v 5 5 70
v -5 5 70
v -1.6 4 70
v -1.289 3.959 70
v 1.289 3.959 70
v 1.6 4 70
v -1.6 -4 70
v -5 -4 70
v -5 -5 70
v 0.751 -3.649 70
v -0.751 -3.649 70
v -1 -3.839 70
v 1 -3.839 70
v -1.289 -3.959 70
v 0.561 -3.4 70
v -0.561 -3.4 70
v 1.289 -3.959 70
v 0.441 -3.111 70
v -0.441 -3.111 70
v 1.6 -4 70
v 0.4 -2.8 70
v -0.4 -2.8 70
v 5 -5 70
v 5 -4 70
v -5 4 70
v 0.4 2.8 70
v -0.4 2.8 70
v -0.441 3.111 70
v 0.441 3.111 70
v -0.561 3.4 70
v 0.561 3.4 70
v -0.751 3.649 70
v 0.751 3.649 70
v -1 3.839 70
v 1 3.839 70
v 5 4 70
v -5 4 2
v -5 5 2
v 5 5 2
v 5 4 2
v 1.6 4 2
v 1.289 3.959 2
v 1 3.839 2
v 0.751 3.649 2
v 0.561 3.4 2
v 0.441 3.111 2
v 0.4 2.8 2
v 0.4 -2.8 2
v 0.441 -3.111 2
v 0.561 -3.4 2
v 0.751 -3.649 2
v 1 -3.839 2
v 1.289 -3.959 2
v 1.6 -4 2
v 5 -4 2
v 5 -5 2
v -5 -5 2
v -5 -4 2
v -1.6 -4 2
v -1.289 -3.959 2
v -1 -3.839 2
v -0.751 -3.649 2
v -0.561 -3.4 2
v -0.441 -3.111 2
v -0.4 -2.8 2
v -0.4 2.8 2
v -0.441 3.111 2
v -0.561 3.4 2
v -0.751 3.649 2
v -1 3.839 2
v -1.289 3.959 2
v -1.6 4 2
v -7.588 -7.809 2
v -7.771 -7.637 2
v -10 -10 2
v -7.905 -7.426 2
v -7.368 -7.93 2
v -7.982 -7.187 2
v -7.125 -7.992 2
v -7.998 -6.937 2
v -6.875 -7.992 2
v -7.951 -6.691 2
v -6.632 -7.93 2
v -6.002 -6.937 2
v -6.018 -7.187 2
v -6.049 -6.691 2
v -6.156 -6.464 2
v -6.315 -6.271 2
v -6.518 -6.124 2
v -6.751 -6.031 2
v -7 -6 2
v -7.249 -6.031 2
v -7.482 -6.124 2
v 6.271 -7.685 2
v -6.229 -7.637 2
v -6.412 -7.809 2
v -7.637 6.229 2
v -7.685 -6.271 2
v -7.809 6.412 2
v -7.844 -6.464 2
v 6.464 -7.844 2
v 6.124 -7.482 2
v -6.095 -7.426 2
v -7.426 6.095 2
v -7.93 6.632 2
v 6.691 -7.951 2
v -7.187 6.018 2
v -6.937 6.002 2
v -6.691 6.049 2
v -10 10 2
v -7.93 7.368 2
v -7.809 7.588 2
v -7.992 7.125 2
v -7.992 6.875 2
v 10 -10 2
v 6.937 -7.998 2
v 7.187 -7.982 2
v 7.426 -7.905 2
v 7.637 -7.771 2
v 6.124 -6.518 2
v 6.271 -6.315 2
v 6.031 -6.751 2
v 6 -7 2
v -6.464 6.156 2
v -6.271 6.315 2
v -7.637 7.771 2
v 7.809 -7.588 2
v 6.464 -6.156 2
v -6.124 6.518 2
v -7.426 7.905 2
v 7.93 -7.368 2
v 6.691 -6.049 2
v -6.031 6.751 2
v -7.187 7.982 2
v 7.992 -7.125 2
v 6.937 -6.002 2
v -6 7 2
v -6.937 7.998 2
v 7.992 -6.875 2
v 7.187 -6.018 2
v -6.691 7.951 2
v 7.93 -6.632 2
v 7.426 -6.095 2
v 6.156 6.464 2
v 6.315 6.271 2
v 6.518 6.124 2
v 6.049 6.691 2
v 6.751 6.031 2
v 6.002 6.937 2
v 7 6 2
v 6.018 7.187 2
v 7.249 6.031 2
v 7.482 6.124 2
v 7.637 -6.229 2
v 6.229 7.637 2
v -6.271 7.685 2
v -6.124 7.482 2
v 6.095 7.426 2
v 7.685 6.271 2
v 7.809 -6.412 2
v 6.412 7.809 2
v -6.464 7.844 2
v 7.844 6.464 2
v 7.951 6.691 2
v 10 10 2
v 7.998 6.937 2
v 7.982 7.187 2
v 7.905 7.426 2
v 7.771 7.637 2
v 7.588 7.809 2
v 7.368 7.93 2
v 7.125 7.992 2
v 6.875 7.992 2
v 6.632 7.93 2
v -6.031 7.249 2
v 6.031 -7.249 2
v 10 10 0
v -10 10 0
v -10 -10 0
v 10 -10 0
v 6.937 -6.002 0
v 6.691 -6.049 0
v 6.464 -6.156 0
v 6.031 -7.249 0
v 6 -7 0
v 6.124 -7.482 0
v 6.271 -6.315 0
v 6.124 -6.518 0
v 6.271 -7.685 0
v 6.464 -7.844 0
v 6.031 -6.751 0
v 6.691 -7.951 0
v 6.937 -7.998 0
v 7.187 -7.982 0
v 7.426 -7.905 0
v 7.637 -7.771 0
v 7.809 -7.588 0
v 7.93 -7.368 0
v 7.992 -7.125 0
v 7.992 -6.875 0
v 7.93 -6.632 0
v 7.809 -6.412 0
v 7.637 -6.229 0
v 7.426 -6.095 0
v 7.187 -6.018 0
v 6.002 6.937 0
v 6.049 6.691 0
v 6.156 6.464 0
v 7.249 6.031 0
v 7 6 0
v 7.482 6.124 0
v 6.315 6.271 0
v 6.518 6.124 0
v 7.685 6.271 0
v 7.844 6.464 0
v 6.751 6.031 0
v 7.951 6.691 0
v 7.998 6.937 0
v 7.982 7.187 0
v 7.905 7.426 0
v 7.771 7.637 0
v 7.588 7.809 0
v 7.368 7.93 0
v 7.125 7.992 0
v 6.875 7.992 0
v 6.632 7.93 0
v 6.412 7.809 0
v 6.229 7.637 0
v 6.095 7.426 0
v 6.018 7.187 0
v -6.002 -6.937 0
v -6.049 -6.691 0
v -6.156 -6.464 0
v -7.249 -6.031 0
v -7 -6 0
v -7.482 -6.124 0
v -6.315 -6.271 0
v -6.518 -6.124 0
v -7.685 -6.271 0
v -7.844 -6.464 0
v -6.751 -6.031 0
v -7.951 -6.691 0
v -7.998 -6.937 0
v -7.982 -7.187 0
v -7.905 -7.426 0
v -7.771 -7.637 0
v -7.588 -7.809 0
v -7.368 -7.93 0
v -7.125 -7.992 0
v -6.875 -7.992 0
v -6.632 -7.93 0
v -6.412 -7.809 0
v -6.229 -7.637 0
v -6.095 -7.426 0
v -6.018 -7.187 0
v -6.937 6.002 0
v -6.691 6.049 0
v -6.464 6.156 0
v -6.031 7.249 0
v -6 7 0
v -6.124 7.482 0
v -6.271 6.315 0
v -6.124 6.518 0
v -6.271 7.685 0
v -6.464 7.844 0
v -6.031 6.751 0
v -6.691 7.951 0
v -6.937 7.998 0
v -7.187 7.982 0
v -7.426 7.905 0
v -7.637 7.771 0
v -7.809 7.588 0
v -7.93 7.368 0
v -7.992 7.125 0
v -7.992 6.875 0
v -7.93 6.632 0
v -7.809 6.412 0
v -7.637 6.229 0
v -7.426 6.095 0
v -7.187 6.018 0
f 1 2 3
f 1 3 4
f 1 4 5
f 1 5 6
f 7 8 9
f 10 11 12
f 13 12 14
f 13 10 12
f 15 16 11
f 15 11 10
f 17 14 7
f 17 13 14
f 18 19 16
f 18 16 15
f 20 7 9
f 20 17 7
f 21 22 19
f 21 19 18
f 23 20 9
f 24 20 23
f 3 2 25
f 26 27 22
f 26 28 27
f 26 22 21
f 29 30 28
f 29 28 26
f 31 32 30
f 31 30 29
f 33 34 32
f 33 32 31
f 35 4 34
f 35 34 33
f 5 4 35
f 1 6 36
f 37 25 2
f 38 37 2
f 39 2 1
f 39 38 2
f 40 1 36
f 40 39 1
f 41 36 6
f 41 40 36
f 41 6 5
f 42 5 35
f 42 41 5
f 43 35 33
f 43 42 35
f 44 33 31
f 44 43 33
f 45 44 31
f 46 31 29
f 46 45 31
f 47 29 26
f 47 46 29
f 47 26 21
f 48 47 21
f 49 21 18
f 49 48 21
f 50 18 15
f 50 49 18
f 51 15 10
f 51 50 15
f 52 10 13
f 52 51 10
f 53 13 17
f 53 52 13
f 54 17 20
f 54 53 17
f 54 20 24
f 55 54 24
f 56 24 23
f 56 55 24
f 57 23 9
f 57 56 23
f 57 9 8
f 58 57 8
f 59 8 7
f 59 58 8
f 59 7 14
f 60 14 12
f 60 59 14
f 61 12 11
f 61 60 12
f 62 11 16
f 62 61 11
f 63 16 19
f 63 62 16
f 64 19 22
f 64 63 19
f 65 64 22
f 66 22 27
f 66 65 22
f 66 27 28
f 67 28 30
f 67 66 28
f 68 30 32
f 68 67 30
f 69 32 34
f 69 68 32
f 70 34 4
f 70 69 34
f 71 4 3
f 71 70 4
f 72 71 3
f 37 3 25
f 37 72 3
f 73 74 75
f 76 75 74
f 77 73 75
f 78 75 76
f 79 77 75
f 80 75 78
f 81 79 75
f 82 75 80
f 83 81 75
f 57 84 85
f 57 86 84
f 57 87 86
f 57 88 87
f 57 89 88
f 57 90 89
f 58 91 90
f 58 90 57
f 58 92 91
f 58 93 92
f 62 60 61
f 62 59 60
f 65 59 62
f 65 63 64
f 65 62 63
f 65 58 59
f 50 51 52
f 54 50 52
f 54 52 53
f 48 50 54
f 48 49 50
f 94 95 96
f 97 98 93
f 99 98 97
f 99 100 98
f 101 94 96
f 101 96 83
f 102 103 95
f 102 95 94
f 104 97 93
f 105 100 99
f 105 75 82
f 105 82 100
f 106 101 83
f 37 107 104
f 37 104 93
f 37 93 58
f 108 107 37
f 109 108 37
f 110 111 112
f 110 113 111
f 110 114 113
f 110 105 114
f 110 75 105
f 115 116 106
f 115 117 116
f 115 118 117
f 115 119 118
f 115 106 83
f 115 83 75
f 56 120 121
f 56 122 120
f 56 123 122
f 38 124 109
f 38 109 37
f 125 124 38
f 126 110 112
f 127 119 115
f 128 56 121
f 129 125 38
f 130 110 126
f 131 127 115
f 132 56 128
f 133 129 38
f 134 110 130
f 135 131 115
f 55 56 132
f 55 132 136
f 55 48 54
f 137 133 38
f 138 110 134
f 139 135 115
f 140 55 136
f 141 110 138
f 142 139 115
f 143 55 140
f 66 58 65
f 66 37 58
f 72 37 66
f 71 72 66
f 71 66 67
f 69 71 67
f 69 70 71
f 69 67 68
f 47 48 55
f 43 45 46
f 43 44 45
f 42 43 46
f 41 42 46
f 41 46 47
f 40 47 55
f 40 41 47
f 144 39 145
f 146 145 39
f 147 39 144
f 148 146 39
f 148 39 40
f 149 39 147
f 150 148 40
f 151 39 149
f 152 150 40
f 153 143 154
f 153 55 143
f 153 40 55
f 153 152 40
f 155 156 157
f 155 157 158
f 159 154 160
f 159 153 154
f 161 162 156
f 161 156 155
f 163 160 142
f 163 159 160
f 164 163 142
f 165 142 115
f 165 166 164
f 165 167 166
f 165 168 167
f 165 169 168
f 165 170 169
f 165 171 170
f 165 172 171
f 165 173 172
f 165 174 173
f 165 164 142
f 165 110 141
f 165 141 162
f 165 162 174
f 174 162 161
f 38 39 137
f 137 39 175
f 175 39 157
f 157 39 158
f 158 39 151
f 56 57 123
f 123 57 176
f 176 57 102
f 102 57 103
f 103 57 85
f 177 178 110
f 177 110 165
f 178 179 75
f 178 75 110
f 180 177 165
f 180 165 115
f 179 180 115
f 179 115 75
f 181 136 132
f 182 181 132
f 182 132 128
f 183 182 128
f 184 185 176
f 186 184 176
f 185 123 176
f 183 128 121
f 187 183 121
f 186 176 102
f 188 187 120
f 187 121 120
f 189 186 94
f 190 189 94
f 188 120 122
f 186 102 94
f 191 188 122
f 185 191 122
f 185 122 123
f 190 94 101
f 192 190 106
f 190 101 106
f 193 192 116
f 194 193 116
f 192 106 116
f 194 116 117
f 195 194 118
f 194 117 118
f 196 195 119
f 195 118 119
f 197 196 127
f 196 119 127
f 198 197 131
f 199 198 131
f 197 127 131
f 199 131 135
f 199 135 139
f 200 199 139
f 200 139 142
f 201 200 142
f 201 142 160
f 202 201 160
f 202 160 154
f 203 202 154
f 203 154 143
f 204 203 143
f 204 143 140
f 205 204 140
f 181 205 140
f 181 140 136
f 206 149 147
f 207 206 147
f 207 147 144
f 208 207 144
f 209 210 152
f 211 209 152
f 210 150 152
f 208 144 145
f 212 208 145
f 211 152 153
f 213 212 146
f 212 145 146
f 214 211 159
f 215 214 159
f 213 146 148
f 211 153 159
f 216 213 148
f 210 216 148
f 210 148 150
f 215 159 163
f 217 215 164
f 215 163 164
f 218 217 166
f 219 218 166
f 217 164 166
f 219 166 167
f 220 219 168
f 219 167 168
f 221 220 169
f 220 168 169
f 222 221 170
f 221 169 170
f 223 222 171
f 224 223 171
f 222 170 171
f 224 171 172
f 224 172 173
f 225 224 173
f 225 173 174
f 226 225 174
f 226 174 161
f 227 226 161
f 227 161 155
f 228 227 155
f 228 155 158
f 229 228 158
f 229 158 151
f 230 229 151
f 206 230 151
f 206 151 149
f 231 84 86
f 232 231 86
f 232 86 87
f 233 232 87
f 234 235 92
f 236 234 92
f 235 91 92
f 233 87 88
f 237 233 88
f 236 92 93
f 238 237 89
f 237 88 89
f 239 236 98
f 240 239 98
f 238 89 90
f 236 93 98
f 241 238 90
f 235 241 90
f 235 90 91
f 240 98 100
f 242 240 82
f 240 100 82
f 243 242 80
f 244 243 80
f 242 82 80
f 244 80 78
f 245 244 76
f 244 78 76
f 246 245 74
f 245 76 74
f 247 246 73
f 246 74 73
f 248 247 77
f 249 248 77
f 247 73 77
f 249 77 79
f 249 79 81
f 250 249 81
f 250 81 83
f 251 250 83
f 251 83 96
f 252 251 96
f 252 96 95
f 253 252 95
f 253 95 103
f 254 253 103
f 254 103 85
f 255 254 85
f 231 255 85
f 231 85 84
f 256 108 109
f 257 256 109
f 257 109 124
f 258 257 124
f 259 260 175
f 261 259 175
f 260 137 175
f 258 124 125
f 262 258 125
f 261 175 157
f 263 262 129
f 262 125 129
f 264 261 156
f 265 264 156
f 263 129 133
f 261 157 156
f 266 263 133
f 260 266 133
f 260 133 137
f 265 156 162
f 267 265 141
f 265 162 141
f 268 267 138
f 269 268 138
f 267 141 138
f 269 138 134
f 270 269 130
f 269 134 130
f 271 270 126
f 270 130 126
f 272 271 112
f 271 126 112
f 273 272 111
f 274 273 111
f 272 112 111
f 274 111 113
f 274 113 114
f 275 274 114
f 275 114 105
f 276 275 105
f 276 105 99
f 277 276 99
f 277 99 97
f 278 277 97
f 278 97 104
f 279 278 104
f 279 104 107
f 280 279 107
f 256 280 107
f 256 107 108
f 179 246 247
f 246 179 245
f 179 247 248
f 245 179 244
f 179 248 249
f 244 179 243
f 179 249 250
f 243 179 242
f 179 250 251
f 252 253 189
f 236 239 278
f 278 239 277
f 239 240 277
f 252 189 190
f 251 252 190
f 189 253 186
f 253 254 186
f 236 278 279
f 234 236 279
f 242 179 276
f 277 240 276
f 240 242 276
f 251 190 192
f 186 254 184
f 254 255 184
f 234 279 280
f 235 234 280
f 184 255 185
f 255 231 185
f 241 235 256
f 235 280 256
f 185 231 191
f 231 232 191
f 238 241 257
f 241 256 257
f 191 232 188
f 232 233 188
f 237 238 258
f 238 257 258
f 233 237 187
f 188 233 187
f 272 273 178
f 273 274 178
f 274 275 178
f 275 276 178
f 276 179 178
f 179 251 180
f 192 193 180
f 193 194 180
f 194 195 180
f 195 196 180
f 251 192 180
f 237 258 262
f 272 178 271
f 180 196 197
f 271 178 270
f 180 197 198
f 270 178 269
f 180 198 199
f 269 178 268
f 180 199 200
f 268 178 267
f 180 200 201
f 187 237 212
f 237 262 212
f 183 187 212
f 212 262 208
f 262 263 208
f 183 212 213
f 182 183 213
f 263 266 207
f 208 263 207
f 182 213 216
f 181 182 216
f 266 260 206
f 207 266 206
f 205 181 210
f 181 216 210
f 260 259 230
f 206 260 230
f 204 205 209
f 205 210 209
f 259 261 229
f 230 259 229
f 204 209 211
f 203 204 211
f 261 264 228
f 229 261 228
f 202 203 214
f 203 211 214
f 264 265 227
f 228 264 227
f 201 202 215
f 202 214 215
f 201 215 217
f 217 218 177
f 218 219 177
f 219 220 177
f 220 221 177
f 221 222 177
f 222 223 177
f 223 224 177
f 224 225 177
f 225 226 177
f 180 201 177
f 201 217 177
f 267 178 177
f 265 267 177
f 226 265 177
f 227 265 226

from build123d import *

# Parameters (mm, degrees)
PAD_DEPTH          = 70
SKETCH002_W        = 20
SKETCH002_H        = 20
PAD001_DEPTH       = 2
SKETCH003_R        = 1
POCKET_DEPTH       = 5
POLARPATTERN_COUNT = 4


with BuildPart() as pad:
    # Sketch001 → Pad (new body)
    with BuildSketch(Plane.XY):
        with BuildLine():
            Line((-5, 4), (-5, 5))
            Line((-5, 5), (5, 5))
            Line((5, 5), (5, 4))
            Line((5, 4), (1.6, 4))
            ThreePointArc((1.6, 4), (0.751472, 3.648528), (0.4, 2.8))
            Line((0.4, 2.8), (0.4, -2.8))
            ThreePointArc((0.4, -2.8), (0.751472, -3.648528), (1.6, -4))
            Line((1.6, -4), (5, -4))
            Line((5, -4), (5, -5))
            Line((5, -5), (-5, -5))
            Line((-5, -5), (-5, -4))
            Line((-5, -4), (-1.6, -4))
            ThreePointArc((-1.6, -4), (-0.751472, -3.648528), (-0.4, -2.8))
            Line((-0.4, -2.8), (-0.4, 2.8))
            ThreePointArc((-0.4, 2.8), (-0.751472, 3.648528), (-1.6, 4))
            Line((-1.6, 4), (-5, 4))
        make_face()
    extrude(amount=PAD_DEPTH)


with BuildPart() as fusion:
    # Sketch002 → Pad001 (new body)
    with BuildSketch(Plane.XY):
        Rectangle(SKETCH002_W, SKETCH002_H)
    extrude(amount=PAD001_DEPTH)

    # Sketch003 → Pocket (cut)
    with BuildSketch(Plane.XY.offset(2)):
        with Locations((-7, 7)):
            Circle(SKETCH003_R)
    pocket = extrude(amount=-POCKET_DEPTH, mode=Mode.SUBTRACT)

    # PolarPattern: Pocket ×4 about axis
    polarpattern_axis = Axis((0, 0, 2), (0, 0, 1))
    for i in range(1, POLARPATTERN_COUNT):
        add(pocket.rotate(polarpattern_axis, i * 360 / POLARPATTERN_COUNT), mode=Mode.SUBTRACT)

    # Fusion: union Pad
    add(pad.part)


solid = fusion.part
